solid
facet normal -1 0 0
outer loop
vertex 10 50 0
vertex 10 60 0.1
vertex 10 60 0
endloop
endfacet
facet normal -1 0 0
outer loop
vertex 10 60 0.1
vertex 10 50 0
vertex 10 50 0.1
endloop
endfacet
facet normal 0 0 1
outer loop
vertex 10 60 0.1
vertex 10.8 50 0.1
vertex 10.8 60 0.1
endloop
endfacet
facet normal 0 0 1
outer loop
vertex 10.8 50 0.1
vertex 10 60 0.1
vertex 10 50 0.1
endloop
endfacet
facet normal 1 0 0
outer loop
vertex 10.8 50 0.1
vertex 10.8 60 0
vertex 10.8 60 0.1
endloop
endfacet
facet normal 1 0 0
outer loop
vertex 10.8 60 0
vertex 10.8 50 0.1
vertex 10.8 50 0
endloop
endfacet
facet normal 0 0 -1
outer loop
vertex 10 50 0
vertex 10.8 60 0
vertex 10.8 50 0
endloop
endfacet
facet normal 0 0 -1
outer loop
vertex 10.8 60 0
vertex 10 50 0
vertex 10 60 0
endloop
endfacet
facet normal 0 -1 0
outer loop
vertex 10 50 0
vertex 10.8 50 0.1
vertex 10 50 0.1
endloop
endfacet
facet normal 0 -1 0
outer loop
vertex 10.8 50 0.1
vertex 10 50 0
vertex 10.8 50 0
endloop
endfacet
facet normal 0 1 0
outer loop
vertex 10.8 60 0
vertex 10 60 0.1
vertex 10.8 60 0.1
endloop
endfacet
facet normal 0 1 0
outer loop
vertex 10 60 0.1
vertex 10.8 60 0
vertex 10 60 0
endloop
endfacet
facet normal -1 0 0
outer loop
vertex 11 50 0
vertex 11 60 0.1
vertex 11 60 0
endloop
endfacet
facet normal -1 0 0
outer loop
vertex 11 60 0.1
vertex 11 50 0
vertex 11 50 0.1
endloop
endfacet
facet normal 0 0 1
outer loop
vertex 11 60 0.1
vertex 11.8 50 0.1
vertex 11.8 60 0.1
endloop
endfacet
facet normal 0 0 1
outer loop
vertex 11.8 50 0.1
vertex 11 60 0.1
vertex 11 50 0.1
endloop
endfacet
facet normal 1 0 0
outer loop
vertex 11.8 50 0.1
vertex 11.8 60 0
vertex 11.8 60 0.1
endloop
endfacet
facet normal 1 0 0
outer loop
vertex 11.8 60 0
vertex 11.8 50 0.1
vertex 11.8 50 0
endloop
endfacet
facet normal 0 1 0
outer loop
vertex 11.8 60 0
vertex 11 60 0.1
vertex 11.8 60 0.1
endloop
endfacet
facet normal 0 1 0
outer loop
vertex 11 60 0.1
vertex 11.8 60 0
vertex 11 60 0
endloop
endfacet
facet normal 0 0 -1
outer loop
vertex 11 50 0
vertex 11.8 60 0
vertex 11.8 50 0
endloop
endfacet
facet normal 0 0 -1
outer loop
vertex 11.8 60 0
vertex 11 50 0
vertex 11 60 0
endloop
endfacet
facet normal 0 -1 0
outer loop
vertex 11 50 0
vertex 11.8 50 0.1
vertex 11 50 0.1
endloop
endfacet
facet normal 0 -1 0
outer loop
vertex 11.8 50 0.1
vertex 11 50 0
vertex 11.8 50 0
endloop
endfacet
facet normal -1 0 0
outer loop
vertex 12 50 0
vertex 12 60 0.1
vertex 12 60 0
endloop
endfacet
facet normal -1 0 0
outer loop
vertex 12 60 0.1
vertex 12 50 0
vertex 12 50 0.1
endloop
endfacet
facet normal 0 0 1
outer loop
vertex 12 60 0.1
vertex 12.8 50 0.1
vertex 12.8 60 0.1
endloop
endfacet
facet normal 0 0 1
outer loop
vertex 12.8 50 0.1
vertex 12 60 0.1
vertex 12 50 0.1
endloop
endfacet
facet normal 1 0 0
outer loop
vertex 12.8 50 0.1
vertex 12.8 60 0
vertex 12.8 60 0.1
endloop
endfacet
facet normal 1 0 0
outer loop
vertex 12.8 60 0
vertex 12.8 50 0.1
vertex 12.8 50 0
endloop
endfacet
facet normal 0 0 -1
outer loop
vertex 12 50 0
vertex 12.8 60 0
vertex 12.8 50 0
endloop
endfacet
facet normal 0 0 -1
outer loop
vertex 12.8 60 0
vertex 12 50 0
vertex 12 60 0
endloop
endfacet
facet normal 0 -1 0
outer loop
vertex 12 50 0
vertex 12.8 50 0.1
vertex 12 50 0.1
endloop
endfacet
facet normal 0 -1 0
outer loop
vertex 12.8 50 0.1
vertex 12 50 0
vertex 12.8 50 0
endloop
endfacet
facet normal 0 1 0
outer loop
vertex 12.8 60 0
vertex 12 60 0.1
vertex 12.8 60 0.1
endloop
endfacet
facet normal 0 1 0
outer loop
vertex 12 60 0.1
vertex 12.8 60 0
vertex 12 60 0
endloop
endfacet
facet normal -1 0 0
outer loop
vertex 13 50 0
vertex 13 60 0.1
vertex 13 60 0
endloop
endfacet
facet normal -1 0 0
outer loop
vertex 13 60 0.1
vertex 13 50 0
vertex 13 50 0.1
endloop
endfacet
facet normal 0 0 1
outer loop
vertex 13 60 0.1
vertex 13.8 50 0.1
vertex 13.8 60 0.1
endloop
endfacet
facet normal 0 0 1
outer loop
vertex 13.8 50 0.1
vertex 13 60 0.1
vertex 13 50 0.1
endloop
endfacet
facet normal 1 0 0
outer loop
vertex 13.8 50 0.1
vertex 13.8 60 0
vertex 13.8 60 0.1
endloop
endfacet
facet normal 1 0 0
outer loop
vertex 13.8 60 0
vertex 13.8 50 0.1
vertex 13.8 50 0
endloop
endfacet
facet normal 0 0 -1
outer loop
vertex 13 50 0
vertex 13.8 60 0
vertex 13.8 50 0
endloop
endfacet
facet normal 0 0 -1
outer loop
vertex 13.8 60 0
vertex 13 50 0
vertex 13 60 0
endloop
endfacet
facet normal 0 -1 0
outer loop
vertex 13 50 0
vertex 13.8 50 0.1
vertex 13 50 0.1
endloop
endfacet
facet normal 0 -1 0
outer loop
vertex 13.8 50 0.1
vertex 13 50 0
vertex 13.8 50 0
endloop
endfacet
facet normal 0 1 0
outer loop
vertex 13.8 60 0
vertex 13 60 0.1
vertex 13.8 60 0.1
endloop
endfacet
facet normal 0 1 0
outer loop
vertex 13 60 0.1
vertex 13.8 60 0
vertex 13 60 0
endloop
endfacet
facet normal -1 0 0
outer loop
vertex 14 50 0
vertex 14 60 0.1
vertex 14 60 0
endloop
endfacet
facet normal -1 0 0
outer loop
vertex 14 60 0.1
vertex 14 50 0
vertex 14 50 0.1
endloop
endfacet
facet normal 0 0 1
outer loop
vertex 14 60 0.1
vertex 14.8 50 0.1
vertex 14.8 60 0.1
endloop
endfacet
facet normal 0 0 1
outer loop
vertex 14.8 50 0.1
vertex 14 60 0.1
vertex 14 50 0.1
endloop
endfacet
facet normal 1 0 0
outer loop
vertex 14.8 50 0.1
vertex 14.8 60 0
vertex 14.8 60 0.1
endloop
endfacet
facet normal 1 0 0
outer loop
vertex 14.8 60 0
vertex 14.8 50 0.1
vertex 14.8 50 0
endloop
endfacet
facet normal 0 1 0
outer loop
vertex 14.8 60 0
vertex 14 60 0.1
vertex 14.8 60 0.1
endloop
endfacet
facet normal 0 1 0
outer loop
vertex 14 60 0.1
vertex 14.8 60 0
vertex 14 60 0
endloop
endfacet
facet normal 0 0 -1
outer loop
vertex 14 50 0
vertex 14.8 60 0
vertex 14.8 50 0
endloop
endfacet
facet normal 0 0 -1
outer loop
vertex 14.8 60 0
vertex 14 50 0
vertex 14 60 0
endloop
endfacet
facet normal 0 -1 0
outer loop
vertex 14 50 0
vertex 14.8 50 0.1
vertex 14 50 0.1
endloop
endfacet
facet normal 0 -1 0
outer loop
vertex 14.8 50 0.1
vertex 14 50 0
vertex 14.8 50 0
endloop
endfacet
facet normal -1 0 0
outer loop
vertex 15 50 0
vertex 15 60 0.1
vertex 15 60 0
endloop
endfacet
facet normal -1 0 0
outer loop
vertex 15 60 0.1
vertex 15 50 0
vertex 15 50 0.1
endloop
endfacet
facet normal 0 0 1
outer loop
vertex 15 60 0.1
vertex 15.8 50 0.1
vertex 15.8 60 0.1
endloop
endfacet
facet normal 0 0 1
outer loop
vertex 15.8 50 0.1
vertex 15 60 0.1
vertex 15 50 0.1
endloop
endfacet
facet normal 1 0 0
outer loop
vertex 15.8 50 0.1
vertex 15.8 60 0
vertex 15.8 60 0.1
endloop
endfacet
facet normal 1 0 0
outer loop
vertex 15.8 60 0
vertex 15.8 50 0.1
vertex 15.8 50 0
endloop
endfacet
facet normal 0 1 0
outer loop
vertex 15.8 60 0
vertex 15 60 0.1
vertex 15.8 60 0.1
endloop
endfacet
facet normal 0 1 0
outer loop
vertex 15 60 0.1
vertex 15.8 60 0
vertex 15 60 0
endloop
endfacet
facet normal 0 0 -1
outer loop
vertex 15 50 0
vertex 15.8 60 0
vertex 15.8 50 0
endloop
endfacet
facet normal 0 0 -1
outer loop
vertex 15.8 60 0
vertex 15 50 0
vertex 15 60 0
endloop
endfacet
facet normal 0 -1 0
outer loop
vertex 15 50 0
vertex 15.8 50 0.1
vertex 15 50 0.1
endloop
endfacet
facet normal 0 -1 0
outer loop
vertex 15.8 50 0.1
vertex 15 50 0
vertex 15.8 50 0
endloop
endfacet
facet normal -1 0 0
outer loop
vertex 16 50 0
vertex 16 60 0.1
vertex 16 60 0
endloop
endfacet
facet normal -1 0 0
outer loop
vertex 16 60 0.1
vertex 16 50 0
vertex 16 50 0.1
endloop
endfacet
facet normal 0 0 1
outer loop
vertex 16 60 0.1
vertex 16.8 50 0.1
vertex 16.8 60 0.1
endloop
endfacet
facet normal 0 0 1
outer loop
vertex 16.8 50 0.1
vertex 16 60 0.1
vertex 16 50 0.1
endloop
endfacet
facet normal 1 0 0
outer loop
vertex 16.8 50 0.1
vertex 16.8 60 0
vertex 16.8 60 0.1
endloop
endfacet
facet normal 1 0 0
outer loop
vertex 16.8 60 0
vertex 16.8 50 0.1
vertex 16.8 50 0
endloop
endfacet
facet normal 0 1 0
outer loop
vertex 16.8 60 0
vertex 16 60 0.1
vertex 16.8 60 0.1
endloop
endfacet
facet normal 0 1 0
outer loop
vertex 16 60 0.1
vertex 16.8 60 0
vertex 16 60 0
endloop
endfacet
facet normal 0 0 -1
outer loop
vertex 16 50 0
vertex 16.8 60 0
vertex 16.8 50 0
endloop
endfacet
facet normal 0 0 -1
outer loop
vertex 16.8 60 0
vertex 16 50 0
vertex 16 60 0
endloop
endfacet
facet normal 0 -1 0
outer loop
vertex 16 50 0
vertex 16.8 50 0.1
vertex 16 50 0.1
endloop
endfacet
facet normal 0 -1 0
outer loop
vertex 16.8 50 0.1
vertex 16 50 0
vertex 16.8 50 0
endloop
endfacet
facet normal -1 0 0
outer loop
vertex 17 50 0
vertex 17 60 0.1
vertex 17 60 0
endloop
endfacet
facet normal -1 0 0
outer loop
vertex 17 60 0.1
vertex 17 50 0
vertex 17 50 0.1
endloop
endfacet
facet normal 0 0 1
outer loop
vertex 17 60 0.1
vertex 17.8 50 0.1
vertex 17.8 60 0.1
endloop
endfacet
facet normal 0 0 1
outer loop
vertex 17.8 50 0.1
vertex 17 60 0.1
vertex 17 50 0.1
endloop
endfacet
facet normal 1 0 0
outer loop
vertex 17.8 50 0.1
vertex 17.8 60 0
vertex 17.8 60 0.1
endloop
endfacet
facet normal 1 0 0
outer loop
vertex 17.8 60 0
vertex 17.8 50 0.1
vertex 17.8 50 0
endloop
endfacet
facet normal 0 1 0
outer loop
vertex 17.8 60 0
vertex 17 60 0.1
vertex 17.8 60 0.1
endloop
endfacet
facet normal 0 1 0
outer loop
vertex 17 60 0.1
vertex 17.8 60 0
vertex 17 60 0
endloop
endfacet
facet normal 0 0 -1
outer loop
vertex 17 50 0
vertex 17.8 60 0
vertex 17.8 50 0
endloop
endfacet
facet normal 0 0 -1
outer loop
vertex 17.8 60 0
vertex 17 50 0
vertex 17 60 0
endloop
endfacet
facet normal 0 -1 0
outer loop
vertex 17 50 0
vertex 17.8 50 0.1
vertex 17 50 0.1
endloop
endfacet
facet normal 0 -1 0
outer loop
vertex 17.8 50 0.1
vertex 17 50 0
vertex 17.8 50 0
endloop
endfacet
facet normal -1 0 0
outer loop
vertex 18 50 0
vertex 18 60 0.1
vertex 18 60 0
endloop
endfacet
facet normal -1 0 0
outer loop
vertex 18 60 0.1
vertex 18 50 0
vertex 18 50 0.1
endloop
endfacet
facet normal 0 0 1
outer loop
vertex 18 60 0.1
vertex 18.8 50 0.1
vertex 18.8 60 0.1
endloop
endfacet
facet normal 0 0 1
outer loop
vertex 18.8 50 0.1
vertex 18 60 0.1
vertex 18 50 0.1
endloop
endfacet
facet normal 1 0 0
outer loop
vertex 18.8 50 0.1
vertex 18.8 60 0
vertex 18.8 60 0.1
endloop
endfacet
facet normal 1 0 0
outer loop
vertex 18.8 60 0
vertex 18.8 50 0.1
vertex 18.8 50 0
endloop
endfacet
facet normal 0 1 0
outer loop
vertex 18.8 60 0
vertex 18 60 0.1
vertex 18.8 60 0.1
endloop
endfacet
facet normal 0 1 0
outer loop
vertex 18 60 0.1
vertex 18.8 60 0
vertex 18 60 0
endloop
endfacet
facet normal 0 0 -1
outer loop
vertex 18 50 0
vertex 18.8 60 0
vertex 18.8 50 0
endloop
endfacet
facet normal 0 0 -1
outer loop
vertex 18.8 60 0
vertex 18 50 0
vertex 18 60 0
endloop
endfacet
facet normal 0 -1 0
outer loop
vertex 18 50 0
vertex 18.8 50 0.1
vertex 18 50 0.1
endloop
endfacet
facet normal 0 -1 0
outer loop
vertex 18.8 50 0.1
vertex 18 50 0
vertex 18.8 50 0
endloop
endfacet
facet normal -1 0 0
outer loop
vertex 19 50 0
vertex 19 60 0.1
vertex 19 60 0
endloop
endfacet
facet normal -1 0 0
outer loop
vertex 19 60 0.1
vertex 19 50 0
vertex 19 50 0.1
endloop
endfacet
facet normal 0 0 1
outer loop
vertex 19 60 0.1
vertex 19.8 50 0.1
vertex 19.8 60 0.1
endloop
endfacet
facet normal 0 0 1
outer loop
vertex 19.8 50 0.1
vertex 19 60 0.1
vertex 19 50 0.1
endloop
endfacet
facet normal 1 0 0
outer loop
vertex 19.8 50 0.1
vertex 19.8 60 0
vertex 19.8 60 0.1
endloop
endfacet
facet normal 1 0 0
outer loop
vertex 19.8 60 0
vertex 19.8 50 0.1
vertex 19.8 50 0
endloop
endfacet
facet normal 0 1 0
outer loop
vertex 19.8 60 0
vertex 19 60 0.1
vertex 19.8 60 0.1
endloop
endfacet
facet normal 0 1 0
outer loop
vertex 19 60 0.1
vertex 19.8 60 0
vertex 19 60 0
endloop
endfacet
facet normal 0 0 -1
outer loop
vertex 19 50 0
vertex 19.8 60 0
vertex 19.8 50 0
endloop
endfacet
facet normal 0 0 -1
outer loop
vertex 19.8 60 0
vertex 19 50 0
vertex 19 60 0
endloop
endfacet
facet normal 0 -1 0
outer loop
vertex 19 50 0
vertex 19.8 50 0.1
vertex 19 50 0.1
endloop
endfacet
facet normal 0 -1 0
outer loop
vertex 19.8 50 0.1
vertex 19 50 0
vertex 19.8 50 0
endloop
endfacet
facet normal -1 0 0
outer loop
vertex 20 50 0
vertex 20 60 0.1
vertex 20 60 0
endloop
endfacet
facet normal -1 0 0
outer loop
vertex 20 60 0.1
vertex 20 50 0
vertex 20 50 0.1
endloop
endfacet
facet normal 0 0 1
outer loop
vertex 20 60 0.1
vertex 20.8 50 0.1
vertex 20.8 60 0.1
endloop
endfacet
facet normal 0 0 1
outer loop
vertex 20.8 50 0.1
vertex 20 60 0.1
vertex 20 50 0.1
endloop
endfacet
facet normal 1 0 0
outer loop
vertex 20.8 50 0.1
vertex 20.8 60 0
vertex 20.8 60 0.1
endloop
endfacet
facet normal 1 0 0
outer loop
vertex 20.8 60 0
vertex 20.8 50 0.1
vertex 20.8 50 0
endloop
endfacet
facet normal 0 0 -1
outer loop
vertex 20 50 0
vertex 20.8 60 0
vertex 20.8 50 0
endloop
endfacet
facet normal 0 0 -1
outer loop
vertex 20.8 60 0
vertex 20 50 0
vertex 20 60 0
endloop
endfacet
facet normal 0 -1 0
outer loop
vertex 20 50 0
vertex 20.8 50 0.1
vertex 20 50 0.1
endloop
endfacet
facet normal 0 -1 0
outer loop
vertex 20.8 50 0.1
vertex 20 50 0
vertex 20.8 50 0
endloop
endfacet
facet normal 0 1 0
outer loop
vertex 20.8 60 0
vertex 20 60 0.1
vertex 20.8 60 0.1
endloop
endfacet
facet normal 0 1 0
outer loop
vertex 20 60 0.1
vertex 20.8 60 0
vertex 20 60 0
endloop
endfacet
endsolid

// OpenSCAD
translate([10+0,10+40,0])
        for (i = [0 : 10]){
            translate([i,0,0])
                cube(size = [0.8,10,0.1]);
    }
